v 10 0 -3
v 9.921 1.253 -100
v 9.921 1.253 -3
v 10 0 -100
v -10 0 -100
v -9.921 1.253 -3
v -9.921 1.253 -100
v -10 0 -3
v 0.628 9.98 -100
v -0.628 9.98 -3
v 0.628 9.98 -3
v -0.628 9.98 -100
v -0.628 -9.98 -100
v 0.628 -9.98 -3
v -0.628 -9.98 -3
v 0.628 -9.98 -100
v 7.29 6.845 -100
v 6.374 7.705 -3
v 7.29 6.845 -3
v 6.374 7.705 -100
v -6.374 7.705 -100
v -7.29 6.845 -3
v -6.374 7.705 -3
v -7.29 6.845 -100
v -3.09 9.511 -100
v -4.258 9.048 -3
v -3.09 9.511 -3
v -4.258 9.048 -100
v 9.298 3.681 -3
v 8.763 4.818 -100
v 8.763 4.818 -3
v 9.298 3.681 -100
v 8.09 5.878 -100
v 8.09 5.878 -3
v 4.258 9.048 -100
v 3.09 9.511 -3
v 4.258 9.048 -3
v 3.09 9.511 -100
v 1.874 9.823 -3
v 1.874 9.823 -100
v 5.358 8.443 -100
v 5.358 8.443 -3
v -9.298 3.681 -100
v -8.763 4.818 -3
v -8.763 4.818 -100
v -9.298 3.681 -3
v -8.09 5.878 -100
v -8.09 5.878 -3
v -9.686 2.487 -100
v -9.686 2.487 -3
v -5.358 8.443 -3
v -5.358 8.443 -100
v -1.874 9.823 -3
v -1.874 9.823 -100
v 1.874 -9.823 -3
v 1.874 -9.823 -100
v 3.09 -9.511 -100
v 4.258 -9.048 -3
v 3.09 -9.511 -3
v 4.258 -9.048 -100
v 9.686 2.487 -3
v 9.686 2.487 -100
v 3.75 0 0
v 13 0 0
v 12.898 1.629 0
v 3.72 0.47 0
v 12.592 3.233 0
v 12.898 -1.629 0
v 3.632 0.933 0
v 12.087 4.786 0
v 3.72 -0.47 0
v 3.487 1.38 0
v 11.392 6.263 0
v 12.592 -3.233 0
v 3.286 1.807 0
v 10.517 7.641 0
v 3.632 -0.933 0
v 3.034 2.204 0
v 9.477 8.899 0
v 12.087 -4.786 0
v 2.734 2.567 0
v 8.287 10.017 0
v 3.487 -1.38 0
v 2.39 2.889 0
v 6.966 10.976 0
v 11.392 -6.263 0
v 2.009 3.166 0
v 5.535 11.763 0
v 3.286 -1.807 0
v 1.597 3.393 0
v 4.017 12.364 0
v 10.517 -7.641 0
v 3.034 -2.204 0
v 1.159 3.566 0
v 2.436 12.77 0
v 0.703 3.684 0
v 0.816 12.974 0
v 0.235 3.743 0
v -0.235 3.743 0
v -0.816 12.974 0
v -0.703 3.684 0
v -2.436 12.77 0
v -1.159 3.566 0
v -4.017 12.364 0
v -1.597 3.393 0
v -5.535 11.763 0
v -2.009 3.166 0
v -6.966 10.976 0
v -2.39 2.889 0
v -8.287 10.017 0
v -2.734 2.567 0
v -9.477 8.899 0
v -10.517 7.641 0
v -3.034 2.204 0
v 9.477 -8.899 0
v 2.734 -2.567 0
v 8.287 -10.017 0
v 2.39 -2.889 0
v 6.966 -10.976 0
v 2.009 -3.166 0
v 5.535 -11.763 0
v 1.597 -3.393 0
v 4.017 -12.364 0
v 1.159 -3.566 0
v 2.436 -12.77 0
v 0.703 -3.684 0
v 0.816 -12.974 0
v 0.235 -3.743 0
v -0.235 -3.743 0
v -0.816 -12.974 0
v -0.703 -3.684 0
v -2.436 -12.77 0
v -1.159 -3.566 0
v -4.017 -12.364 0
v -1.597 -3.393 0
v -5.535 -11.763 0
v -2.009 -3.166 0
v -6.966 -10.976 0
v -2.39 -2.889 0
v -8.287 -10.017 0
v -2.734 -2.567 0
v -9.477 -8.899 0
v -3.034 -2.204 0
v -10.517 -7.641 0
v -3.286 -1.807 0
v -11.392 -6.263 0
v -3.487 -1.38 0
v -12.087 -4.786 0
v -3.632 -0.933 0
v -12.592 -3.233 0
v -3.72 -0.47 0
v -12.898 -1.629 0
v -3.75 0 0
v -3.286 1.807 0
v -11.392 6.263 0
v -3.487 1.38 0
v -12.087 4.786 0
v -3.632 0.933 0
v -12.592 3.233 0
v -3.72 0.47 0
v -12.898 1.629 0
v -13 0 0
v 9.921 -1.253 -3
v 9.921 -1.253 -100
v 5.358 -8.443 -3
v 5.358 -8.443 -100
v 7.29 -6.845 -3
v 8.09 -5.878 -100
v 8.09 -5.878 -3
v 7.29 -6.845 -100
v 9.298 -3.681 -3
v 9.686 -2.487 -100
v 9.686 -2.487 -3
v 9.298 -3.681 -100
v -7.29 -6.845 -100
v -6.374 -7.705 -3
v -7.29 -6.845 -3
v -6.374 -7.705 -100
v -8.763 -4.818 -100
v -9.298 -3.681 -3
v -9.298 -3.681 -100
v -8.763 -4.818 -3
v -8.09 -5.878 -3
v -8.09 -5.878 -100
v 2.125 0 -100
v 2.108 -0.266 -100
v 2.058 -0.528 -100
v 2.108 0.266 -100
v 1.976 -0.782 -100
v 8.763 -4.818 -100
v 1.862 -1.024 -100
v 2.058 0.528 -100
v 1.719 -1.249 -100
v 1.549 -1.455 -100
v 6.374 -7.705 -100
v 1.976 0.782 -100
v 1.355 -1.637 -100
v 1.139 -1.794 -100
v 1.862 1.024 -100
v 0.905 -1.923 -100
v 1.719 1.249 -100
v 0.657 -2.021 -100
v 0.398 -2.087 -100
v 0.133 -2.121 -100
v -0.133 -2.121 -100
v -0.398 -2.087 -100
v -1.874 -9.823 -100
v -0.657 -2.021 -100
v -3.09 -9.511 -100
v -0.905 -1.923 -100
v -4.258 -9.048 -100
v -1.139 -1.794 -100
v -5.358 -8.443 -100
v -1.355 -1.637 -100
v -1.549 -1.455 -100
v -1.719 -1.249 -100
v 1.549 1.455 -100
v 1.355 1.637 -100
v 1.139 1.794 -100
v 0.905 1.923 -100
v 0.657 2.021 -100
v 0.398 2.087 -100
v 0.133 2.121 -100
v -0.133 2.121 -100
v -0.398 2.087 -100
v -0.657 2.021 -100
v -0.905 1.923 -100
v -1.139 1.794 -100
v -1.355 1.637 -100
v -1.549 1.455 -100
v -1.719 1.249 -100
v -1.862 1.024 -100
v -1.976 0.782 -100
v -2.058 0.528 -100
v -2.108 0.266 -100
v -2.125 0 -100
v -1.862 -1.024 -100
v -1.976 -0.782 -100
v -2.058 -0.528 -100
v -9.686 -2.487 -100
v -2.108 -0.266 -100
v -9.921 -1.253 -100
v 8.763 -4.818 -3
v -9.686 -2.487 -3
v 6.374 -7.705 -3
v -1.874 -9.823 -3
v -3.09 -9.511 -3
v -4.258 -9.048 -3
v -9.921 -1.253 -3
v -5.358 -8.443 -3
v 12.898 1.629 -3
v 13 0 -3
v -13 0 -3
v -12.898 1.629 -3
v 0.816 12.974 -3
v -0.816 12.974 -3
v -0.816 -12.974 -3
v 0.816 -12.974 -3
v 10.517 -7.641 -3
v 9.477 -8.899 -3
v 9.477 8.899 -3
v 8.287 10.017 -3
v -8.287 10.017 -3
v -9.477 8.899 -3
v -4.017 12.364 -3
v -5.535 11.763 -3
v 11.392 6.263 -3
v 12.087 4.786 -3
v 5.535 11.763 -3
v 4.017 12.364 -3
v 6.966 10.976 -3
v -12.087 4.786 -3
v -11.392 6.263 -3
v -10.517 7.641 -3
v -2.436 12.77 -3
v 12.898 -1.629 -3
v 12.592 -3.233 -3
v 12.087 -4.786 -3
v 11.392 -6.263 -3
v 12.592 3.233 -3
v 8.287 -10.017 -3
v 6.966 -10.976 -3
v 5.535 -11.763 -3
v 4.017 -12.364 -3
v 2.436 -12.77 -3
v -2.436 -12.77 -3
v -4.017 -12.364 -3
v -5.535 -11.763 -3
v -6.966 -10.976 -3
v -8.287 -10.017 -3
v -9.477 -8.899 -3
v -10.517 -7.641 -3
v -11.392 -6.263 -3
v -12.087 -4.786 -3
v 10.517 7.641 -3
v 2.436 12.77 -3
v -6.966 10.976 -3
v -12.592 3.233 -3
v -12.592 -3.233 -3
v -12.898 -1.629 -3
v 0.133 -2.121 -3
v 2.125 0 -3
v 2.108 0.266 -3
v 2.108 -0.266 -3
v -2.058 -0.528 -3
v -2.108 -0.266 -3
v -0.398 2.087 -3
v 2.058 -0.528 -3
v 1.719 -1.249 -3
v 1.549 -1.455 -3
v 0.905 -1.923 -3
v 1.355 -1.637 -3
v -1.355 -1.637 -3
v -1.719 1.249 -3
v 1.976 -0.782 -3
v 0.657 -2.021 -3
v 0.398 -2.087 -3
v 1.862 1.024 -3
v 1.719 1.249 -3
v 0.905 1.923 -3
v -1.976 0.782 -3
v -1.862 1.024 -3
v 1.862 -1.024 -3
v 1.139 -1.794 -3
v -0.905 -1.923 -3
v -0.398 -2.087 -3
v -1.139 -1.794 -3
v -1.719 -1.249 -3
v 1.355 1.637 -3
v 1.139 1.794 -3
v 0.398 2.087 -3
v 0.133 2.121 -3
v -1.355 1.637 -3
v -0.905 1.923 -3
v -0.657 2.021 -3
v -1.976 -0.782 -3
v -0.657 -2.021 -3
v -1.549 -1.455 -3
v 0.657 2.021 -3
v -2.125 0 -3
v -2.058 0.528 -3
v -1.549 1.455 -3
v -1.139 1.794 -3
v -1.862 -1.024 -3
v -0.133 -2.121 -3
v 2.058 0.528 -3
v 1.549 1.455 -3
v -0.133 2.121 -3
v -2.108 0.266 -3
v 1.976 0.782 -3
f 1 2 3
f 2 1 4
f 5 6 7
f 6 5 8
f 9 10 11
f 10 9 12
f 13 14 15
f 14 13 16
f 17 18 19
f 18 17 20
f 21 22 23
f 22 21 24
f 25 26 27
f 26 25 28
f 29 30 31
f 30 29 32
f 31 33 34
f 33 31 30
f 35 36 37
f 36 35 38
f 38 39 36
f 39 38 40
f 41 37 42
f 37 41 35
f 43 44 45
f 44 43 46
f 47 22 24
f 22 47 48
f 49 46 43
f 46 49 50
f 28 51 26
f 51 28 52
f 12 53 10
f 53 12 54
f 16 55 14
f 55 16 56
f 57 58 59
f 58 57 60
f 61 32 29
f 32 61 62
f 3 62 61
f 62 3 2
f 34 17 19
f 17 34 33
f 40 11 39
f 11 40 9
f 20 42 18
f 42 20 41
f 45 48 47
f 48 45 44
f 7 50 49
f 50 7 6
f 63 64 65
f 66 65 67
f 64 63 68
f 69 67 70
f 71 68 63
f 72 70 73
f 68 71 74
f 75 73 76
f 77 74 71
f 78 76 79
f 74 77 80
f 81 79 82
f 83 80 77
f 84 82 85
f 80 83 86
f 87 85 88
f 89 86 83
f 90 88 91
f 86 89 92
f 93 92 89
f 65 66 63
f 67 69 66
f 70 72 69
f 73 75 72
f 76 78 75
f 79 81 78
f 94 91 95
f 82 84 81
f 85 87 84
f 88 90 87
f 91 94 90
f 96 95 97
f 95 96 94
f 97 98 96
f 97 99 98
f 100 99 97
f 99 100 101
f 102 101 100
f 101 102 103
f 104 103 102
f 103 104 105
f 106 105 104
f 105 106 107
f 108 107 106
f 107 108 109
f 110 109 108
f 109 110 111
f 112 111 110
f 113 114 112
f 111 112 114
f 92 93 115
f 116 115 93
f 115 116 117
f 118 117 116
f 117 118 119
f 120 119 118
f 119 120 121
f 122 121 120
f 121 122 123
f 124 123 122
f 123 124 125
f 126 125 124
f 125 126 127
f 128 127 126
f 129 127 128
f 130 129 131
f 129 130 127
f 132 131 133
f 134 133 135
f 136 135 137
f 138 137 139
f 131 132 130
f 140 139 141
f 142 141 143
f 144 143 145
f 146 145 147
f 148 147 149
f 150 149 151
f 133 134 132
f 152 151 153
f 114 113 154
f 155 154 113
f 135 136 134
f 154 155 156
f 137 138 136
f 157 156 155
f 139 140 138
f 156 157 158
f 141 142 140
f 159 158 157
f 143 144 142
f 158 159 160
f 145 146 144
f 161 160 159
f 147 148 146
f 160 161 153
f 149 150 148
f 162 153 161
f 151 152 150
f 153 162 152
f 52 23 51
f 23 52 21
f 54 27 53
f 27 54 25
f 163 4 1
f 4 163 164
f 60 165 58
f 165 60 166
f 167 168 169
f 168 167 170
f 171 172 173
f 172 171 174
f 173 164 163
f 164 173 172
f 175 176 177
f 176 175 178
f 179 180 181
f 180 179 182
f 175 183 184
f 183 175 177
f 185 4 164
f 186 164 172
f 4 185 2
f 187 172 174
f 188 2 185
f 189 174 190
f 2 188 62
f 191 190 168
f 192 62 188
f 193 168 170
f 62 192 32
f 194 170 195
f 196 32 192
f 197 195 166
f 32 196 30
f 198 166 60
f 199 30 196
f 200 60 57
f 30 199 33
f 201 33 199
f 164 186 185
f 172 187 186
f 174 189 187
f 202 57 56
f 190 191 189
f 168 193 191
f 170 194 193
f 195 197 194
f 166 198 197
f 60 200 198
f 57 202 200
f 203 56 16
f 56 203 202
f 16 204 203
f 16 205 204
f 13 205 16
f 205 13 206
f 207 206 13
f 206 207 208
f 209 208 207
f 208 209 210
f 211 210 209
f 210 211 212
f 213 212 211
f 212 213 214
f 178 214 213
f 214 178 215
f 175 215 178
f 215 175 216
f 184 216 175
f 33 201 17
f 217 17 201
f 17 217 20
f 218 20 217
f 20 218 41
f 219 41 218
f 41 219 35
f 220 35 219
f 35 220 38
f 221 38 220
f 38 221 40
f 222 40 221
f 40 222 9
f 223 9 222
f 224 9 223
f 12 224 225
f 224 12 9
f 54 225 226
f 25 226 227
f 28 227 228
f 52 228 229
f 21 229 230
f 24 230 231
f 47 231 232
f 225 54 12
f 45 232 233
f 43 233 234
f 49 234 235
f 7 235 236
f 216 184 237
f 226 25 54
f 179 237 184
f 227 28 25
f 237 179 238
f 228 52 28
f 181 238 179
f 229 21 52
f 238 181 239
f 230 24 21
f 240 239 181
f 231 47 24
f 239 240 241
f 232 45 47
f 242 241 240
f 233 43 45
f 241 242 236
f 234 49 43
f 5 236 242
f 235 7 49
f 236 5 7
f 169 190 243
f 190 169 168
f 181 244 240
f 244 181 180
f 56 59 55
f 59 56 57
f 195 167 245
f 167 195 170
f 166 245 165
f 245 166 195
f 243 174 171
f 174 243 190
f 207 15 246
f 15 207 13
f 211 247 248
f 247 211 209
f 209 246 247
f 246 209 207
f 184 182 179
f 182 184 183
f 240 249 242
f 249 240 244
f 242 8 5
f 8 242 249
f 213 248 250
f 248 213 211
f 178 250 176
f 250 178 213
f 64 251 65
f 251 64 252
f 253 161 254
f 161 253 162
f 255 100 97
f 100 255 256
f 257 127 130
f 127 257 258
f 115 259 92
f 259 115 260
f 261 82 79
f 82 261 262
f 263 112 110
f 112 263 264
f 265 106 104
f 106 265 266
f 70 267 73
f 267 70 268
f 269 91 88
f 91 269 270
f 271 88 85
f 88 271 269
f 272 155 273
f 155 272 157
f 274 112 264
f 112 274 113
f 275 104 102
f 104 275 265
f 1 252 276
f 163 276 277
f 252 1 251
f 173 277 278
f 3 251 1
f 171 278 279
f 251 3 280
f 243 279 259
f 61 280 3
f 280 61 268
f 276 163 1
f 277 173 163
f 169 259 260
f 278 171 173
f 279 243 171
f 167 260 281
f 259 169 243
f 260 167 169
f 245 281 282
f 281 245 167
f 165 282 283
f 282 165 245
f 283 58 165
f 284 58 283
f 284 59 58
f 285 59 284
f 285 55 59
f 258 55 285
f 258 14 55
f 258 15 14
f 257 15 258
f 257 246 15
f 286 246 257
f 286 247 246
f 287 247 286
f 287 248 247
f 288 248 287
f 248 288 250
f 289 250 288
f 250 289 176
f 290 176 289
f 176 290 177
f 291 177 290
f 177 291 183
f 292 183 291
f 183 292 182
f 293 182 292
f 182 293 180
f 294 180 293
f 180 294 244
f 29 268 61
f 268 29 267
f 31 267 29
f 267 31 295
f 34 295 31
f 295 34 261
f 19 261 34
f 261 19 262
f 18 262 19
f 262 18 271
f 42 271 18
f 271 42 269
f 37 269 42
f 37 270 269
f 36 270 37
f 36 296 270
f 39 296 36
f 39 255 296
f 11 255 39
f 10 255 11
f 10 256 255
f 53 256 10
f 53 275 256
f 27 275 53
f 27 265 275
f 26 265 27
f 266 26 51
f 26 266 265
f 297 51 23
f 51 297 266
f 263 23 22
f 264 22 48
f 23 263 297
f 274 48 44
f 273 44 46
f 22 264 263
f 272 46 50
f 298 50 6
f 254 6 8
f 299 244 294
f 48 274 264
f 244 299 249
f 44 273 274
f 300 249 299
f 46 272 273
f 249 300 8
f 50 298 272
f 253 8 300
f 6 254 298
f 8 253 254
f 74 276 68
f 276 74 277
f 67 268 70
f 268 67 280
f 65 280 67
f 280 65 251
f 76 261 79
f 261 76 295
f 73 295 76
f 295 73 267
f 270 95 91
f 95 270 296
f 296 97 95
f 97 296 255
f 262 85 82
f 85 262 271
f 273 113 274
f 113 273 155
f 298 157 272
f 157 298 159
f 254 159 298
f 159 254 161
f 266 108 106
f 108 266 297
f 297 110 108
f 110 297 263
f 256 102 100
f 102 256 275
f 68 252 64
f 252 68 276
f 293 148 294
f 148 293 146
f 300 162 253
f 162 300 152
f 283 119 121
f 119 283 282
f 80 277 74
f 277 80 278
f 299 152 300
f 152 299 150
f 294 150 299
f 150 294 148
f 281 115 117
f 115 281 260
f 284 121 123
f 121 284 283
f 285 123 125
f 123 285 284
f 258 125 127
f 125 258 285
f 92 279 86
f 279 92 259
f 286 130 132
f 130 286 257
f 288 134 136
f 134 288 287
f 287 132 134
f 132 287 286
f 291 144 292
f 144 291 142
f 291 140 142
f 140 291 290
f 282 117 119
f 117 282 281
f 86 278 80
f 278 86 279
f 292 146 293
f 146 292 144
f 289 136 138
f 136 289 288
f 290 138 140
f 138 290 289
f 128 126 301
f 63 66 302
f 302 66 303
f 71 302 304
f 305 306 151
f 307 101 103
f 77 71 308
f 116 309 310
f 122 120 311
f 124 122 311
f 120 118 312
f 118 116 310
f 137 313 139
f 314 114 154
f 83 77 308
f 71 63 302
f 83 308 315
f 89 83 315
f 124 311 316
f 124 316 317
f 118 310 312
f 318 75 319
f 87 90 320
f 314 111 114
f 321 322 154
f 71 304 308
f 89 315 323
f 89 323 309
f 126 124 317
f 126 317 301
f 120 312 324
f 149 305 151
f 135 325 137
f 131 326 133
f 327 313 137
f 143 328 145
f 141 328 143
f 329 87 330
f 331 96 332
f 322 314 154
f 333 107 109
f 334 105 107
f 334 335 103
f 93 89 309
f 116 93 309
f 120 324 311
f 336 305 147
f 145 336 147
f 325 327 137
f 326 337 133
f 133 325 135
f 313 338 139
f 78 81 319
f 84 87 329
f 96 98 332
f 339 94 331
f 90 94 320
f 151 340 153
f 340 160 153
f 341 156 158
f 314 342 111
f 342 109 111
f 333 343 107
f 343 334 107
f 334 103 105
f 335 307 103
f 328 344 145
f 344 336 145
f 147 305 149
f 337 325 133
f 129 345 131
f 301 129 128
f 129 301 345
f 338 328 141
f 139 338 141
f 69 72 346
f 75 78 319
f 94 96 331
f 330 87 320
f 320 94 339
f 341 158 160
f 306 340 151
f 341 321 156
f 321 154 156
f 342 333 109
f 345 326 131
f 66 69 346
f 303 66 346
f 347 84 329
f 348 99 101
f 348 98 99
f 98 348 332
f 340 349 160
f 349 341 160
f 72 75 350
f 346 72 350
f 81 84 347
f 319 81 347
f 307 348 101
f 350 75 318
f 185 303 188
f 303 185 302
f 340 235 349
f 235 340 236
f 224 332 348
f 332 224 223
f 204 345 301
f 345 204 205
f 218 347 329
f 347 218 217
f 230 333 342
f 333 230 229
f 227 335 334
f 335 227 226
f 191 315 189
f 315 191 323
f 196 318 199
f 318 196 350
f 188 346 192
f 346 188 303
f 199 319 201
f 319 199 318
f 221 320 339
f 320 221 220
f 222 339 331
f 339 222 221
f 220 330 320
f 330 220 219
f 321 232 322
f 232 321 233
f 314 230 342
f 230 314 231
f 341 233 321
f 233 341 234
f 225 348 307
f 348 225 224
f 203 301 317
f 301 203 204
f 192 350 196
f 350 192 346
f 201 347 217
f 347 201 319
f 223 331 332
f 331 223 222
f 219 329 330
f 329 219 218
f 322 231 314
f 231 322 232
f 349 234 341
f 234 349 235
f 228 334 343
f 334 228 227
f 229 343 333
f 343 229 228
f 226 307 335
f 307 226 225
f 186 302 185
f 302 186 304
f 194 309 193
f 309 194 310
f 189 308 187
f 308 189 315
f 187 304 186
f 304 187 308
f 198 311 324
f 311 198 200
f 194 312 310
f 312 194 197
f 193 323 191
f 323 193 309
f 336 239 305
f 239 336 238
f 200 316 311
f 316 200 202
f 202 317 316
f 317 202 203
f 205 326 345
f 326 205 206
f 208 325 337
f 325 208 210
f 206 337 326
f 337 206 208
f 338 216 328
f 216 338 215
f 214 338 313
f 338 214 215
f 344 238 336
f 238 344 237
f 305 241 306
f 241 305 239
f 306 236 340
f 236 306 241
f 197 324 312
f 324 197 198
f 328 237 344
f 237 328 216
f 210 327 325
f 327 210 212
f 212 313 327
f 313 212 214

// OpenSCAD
$fn = 50;


difference() {
	union() {
		translate(v = [0, 0, -100.0000000000]) {
			cylinder(h = 100, r = 10.0000000000);
		}
		translate(v = [0, 0, -3.0000000000]) {
			cylinder(h = 3, r = 13.0000000000);
		}
	}
	union() {
		translate(v = [0, 0, 0]) {
			rotate(a = [0, 0, 0]) {
				difference() {
					union() {
						#translate(v = [0, 0, -100.0000000000]) {
							cylinder(h = 100, r = 2.0000000000);
						}
						#translate(v = [0, 0, -3]) {
							cylinder(h = 3, r1 = 2.1250000000, r2 = 3.7500000000);
						}
						#translate(v = [0, 0, -100.0000000000]) {
							cylinder(h = 100, r = 2.1250000000);
						}
						#translate(v = [0, 0, -100.0000000000]) {
							cylinder(h = 100, r = 2.0000000000);
						}
					}
					union();
				}
			}
		}
	}
}
